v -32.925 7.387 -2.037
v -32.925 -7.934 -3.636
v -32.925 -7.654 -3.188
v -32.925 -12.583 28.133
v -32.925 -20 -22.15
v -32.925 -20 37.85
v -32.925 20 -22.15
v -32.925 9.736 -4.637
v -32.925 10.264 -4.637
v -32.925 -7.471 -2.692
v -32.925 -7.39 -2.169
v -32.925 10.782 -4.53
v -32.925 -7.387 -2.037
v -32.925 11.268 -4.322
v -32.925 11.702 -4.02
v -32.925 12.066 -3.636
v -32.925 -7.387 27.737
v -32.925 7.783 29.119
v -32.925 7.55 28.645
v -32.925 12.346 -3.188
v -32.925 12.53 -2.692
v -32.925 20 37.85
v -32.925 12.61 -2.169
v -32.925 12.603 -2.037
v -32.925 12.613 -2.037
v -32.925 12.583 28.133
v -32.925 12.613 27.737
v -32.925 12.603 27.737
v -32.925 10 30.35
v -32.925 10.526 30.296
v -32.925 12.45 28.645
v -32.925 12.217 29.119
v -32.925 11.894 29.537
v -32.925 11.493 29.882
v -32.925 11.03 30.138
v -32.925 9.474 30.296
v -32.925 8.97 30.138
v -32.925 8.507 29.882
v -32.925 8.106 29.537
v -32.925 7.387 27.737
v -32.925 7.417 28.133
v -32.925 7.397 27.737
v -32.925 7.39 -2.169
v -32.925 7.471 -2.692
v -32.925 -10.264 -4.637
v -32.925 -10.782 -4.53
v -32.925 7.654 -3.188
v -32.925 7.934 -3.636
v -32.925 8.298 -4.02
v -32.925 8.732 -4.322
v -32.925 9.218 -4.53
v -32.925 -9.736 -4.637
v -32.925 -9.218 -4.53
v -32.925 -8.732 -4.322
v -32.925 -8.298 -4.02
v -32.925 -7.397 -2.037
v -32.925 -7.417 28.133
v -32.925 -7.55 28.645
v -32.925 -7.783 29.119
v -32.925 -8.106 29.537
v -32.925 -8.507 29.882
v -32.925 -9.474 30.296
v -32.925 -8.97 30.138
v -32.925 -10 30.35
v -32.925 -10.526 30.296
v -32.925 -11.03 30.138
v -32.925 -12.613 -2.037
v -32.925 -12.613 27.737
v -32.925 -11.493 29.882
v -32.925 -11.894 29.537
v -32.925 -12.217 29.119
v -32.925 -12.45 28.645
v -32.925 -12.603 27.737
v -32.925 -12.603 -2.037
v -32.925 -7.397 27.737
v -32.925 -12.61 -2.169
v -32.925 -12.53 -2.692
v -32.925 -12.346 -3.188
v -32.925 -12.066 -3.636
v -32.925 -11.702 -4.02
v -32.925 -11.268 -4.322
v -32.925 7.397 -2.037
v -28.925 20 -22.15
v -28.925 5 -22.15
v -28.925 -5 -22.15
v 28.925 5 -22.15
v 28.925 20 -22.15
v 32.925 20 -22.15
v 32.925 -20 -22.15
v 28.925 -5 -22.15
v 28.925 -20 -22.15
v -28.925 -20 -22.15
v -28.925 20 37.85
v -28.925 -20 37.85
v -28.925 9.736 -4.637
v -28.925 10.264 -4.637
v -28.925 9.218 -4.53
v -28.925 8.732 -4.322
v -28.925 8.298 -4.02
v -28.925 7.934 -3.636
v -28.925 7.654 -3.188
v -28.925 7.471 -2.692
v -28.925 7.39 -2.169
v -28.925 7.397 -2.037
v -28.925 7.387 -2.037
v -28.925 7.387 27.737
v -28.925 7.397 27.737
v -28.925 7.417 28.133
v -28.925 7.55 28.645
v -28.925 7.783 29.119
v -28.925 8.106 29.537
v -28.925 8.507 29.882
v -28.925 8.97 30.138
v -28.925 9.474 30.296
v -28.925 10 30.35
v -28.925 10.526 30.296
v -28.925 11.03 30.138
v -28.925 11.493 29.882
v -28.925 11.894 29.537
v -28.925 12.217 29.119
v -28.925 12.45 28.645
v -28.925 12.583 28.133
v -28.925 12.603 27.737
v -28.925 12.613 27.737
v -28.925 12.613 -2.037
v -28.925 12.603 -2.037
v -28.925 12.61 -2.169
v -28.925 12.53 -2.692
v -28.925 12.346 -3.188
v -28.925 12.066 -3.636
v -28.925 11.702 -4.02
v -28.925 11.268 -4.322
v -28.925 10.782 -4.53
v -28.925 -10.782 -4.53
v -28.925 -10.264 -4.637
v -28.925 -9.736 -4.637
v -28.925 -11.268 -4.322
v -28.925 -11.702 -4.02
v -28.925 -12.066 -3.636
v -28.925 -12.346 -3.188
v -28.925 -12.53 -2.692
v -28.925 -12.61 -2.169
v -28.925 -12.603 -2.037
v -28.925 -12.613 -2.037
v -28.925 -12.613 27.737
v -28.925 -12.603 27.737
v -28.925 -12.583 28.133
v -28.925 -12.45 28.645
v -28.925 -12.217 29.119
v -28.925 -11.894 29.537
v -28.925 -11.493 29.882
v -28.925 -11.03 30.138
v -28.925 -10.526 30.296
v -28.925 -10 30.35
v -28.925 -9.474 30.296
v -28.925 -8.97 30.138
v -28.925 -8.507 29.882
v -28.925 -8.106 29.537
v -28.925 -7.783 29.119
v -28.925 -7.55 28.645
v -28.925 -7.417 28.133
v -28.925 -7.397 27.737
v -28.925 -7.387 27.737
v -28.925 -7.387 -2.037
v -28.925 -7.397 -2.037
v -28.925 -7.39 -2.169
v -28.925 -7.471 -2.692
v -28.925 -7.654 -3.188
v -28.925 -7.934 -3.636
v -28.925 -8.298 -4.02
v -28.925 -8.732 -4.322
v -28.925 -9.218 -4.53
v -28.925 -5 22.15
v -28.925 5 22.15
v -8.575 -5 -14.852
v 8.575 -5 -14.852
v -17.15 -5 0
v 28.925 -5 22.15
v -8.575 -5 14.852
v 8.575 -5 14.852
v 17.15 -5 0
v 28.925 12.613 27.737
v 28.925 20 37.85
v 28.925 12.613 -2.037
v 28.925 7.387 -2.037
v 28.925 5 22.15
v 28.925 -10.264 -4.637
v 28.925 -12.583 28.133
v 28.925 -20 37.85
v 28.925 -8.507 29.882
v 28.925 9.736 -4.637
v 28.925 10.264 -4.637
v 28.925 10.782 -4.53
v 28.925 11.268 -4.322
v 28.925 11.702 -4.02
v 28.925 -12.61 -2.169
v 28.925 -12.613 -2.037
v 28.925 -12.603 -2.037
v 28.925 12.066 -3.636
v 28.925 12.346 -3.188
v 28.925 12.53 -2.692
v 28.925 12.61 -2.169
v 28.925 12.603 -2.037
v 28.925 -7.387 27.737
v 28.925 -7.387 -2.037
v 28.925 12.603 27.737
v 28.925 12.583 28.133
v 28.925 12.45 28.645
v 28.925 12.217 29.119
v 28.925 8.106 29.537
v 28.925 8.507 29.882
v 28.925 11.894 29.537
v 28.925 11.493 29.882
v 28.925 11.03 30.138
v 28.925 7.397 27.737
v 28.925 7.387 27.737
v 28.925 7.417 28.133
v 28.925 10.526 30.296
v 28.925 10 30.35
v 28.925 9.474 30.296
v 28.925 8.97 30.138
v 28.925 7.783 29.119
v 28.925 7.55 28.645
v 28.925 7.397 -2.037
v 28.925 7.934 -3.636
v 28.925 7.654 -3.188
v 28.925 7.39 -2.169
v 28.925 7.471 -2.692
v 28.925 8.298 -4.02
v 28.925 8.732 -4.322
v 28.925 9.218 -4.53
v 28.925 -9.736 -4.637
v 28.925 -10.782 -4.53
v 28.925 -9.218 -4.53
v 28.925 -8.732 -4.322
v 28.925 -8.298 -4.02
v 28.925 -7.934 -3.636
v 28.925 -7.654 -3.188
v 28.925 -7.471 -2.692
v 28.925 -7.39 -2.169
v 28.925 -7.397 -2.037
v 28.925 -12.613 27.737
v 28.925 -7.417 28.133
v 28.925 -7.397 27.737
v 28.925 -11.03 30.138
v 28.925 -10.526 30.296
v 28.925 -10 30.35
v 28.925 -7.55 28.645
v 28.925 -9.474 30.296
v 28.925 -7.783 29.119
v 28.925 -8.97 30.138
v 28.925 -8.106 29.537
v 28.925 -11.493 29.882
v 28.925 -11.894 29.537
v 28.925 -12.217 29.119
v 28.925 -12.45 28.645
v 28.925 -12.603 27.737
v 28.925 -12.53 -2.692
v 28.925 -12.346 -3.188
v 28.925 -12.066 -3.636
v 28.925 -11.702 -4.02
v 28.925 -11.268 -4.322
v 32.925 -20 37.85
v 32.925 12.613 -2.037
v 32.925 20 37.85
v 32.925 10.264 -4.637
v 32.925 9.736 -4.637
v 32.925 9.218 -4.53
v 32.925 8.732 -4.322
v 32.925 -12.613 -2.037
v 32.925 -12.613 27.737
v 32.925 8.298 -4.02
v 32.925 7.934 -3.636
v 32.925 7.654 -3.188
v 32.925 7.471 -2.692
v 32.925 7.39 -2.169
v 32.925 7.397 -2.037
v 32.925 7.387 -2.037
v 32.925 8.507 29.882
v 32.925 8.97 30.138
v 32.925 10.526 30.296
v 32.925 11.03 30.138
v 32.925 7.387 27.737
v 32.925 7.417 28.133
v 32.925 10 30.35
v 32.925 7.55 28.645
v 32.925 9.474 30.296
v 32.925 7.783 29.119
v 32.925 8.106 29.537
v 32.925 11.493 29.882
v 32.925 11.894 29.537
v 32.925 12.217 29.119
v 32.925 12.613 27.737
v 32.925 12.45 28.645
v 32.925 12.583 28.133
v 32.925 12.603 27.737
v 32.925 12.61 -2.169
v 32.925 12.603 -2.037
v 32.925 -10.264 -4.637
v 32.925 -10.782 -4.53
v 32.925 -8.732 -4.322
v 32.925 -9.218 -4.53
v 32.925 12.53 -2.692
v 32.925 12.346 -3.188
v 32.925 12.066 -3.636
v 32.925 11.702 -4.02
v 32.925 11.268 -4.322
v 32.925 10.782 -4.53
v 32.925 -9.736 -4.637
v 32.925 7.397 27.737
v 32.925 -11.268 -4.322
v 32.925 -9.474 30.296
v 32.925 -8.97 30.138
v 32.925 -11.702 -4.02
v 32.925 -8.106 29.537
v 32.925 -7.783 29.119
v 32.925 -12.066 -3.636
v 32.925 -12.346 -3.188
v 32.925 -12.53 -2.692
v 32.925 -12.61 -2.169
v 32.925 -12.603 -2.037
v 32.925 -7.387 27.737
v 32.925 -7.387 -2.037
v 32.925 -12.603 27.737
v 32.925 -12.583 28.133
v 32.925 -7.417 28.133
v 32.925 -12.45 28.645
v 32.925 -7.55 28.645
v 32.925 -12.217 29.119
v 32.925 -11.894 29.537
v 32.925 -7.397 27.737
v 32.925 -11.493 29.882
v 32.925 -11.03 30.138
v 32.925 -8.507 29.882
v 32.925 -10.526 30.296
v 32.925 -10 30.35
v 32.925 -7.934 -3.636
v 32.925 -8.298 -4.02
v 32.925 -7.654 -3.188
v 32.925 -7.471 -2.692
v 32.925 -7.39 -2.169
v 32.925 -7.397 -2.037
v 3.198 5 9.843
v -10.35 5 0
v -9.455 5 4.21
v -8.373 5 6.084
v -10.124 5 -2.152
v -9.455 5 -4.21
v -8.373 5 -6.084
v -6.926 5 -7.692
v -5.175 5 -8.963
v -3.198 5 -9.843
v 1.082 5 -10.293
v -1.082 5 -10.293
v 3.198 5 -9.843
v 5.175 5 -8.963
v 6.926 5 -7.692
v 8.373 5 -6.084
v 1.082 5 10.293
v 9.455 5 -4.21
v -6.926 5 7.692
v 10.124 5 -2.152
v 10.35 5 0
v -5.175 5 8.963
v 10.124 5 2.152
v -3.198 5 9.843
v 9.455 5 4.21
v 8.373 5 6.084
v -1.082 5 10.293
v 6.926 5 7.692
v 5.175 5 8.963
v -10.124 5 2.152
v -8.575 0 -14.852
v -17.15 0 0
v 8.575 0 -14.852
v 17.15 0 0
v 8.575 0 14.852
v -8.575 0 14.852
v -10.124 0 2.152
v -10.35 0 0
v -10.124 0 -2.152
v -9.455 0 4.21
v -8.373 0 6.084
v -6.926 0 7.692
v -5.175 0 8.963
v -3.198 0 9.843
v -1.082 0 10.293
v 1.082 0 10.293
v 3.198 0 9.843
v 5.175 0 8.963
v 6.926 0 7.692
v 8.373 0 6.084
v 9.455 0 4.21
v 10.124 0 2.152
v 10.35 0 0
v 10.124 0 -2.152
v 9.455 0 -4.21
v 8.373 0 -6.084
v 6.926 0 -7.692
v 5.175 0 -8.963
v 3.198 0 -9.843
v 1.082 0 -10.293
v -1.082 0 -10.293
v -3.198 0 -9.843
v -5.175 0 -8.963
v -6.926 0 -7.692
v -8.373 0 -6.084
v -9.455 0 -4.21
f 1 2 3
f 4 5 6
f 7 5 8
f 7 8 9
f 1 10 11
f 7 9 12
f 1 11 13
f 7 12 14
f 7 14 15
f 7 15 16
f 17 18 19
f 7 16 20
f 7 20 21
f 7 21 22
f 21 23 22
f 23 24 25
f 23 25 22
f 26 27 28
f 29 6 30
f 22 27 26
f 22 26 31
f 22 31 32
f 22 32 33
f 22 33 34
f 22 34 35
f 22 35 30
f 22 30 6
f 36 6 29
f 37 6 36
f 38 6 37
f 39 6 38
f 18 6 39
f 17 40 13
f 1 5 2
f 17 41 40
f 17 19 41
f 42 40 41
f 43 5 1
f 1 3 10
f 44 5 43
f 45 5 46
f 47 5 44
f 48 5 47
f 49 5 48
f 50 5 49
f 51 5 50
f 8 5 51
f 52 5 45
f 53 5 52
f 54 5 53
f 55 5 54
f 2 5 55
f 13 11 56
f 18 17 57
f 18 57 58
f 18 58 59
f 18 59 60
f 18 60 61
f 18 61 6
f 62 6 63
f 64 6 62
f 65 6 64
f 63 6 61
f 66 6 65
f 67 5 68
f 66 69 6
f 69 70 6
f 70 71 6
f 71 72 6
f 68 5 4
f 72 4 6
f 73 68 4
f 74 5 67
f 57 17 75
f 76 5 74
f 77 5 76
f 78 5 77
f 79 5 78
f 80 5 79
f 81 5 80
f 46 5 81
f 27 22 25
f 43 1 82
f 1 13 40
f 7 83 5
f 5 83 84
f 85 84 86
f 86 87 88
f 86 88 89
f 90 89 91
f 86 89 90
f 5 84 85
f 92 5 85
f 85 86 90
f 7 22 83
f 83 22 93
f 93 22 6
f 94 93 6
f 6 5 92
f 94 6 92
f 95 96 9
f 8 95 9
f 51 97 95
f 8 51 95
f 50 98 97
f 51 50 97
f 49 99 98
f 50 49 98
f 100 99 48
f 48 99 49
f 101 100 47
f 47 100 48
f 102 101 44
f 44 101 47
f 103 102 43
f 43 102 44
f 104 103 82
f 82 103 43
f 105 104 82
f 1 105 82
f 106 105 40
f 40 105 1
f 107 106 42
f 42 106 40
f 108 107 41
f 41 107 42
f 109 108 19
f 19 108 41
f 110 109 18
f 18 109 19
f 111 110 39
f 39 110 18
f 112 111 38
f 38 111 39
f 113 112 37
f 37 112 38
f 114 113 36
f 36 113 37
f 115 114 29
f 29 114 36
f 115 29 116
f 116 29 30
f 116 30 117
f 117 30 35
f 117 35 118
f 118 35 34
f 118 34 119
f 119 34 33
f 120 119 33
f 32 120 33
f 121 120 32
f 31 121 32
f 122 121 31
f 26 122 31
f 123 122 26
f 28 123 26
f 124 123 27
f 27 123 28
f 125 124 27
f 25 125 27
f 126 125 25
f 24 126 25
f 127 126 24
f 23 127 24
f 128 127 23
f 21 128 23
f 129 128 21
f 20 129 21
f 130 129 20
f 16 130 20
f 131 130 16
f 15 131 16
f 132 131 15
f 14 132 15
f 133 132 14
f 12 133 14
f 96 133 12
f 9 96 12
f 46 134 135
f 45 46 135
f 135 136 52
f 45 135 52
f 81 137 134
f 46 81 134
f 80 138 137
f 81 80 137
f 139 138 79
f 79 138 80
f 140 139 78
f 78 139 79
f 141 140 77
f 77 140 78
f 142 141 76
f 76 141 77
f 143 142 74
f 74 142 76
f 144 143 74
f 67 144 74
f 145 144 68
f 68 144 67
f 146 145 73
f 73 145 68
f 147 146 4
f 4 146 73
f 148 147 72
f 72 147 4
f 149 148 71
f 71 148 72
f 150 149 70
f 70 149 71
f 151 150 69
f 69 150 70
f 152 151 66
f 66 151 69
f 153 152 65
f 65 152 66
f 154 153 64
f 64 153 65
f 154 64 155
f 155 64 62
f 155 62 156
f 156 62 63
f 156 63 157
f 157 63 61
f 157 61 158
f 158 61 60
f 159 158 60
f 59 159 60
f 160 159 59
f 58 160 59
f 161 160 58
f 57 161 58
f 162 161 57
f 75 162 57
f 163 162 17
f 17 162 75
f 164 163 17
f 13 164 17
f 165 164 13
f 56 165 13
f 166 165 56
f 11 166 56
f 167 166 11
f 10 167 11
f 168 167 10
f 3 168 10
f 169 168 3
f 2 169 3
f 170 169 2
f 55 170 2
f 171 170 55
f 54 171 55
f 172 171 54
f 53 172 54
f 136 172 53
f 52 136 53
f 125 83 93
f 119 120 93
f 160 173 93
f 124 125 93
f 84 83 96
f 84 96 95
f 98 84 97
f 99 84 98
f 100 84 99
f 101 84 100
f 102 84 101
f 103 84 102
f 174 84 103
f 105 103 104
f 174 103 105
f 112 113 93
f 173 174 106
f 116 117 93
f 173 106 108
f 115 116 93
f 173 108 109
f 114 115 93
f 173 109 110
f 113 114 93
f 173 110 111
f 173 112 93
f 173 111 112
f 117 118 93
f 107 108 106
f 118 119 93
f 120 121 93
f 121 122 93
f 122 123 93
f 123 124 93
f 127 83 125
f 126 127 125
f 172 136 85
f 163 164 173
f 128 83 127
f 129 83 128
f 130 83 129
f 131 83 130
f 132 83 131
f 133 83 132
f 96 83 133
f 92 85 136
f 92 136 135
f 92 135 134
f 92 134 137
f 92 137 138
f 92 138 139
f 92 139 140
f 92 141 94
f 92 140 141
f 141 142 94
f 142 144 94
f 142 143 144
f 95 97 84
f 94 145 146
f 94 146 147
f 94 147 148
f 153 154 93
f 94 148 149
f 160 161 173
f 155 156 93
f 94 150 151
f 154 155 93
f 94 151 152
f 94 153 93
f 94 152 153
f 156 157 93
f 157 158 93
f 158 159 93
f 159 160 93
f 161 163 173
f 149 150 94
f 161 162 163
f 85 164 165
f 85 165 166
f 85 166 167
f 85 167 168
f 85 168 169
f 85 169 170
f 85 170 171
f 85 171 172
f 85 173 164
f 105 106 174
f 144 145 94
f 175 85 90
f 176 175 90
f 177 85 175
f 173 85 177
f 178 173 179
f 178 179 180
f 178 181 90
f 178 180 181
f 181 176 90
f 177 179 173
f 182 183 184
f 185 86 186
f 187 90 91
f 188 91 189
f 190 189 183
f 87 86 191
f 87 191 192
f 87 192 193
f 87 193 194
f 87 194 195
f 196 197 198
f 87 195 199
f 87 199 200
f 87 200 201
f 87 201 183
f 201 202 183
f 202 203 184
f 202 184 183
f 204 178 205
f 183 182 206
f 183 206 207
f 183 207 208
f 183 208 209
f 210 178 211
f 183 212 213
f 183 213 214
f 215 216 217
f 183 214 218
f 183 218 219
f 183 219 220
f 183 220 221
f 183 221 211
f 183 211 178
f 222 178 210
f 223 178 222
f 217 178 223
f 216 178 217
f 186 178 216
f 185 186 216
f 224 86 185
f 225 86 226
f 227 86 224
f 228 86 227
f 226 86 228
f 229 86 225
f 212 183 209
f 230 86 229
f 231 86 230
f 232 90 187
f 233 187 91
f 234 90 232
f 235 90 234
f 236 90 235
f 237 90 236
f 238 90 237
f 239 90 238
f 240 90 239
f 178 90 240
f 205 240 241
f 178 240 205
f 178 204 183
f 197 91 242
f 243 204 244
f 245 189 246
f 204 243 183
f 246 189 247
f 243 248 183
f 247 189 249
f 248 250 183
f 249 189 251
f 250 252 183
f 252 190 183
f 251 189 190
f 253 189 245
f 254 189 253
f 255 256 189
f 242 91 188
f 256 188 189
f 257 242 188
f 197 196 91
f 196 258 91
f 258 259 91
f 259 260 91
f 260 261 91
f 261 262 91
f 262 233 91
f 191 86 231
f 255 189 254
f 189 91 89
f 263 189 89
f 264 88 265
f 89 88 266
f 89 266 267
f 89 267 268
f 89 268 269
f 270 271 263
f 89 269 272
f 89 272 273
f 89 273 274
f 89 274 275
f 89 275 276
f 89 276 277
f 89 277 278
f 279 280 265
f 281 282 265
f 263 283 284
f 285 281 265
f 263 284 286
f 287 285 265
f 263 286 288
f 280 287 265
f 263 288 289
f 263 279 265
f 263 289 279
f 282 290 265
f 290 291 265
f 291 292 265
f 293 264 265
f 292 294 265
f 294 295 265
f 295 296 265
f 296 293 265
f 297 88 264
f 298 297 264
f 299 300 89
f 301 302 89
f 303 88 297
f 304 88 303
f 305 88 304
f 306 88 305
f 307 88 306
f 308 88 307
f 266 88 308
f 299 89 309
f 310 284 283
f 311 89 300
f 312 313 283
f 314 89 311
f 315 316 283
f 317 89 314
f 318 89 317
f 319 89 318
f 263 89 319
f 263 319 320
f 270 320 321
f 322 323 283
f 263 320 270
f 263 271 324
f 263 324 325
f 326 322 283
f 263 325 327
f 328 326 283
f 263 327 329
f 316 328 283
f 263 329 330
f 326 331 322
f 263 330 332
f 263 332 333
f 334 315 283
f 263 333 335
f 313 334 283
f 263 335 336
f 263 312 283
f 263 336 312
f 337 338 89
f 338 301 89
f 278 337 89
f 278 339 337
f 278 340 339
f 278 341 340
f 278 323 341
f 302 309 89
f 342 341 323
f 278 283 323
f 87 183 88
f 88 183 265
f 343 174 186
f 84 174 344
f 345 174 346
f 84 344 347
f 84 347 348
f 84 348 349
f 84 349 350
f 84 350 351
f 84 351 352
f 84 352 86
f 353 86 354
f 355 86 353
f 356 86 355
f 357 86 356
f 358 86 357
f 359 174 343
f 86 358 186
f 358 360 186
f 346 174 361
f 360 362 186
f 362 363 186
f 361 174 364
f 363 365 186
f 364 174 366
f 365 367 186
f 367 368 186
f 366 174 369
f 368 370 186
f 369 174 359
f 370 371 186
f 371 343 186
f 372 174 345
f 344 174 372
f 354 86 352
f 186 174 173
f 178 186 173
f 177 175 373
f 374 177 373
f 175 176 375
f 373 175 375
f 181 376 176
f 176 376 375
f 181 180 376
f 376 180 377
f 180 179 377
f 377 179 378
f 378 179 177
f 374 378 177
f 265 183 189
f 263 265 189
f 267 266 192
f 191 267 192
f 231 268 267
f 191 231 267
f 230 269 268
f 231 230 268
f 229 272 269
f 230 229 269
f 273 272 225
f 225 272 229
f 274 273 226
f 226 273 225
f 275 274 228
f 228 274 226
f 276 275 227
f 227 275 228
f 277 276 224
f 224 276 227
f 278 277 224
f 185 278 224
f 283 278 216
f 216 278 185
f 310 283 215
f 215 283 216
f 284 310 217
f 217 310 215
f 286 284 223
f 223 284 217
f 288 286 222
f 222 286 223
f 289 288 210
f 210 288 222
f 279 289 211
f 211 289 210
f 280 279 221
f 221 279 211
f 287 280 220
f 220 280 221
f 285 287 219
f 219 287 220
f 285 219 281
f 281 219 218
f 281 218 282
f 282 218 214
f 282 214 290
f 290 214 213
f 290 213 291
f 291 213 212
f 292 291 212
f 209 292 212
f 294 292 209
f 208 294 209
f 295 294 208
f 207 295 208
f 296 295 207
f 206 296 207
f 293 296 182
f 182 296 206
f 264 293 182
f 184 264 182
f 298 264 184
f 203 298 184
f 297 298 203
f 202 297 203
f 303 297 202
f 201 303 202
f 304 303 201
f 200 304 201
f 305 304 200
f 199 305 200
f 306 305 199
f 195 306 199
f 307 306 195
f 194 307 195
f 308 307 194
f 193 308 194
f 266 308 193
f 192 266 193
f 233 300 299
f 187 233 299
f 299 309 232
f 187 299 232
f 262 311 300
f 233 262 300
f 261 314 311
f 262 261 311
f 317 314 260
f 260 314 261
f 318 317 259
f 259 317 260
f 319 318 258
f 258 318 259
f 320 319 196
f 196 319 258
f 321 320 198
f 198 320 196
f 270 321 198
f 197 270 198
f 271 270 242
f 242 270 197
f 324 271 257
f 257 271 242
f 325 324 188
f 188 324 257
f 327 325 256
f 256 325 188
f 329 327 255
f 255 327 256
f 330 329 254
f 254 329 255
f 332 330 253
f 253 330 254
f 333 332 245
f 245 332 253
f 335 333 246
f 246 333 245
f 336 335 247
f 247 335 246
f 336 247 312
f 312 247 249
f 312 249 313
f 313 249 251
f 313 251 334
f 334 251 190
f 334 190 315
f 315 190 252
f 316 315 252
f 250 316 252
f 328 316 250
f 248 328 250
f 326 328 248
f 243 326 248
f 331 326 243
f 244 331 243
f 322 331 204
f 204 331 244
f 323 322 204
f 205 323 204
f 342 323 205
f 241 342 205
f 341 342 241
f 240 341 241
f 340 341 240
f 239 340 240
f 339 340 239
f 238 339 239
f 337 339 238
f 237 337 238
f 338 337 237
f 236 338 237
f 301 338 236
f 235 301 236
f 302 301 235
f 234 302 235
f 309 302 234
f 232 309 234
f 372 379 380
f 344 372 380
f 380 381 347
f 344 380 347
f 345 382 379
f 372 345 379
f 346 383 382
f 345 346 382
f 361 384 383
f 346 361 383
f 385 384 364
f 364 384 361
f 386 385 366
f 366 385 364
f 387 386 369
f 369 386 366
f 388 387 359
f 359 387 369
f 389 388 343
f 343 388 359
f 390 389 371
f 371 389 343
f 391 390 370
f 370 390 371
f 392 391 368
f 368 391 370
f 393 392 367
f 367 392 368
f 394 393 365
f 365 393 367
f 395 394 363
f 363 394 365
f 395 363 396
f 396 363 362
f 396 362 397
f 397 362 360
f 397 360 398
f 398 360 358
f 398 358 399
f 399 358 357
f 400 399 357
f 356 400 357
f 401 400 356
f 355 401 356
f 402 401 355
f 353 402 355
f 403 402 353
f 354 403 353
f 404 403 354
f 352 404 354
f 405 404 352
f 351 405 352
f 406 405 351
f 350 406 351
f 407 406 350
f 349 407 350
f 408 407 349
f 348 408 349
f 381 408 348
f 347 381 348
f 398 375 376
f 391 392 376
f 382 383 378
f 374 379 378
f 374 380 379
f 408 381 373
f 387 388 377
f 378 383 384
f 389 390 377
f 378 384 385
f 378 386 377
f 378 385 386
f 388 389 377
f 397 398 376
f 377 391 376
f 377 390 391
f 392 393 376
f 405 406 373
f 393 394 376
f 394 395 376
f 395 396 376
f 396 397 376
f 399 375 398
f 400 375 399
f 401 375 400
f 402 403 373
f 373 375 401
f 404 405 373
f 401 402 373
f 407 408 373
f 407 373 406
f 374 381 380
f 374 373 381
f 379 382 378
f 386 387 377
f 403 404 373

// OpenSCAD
// file: myLibs.scad
pi= 3.14159265359;

module hole(diam, height, clearance= 0.1)
{
        fn= round(diam * pi / 0.5);
        cylinder(h= height, r=diam / 2 / cos(180 / fn) + clearance, $fn=fn);
}

module nutTrap(ffd, faces=6, height=1)
{
	cylinder(h= height, r=ffd / cos(180 / faces) / 2 + 0.05, $fn=faces);
}

// A slot which has rounded ends, but total length is l
module slot(d= 4, l= 8, ht= 1, clearance=0.1) {
	fn= round(d * pi / 0.5);
	rd= d / 2 / cos(180 / fn) + clearance;
	d1= rd*2;
	union() {
		translate([0,0,ht/2]) cube([l-d1, d1, ht], center=true);
		translate([-(l-d1)/2, 0, ht/2]) cylinder(h=ht, r=rd, $fn=fn, center=true); 
		translate([(l-d1)/2, 0, ht/2]) cylinder(h=ht, r=rd, $fn=fn, center=true); 
	}
	
}

/**
 * Standard right-angled triangle
 *
 * @param number o_len Lenght of the opposite side
 * @param number a_len Lenght of the adjacent side
 * @param number depth How wide/deep the triangle is in the 3rd dimension
 * @todo a better way ?
 */
module triangle(o_len, a_len, depth)
{
    linear_extrude(height=depth)
    {
        polygon(points=[[0,0],[a_len,0],[0,o_len]], paths=[[0,1,2]]);
    }
}
// main file
use <myLibs.scad>

w= 65.85;
h= 60;
l= 40.00;
thick= 4;
holder_thick= 10;

hole_sep= 20;
nut_radius=30.3/2 + 2;

nhw= nut_radius*2+10;
mm= 25.4;

module nut_holder() {
	difference() {
		translate([0, 0, 0])  cube(size=[w, nhw, holder_thick], center=true);
		cylinder(h=20,r=nut_radius, $fn=6);
		translate([0, 0, -1])  cylinder(r=0.5*mm/2+4, h=10, center=true);
	}
}

module flange() {
	difference() {
		translate([0, 0, 0])  cube(size=[thick, h, l], center=true);
		translate([-5, 5, -10]) rotate([90, 0, 90])  slot(5, h-25, 10);
		translate([-5, 5, 10]) rotate([90, 0, 90])  slot(5, h-25, 10);
	}
}

py= (h - nhw) /2;
rotate([90, 0, 0])
union() {
	nut_holder();
	translate([w/2-thick/2, py, 0])  flange();
	translate([-w/2+thick/2, py, 0])  flange();
}
